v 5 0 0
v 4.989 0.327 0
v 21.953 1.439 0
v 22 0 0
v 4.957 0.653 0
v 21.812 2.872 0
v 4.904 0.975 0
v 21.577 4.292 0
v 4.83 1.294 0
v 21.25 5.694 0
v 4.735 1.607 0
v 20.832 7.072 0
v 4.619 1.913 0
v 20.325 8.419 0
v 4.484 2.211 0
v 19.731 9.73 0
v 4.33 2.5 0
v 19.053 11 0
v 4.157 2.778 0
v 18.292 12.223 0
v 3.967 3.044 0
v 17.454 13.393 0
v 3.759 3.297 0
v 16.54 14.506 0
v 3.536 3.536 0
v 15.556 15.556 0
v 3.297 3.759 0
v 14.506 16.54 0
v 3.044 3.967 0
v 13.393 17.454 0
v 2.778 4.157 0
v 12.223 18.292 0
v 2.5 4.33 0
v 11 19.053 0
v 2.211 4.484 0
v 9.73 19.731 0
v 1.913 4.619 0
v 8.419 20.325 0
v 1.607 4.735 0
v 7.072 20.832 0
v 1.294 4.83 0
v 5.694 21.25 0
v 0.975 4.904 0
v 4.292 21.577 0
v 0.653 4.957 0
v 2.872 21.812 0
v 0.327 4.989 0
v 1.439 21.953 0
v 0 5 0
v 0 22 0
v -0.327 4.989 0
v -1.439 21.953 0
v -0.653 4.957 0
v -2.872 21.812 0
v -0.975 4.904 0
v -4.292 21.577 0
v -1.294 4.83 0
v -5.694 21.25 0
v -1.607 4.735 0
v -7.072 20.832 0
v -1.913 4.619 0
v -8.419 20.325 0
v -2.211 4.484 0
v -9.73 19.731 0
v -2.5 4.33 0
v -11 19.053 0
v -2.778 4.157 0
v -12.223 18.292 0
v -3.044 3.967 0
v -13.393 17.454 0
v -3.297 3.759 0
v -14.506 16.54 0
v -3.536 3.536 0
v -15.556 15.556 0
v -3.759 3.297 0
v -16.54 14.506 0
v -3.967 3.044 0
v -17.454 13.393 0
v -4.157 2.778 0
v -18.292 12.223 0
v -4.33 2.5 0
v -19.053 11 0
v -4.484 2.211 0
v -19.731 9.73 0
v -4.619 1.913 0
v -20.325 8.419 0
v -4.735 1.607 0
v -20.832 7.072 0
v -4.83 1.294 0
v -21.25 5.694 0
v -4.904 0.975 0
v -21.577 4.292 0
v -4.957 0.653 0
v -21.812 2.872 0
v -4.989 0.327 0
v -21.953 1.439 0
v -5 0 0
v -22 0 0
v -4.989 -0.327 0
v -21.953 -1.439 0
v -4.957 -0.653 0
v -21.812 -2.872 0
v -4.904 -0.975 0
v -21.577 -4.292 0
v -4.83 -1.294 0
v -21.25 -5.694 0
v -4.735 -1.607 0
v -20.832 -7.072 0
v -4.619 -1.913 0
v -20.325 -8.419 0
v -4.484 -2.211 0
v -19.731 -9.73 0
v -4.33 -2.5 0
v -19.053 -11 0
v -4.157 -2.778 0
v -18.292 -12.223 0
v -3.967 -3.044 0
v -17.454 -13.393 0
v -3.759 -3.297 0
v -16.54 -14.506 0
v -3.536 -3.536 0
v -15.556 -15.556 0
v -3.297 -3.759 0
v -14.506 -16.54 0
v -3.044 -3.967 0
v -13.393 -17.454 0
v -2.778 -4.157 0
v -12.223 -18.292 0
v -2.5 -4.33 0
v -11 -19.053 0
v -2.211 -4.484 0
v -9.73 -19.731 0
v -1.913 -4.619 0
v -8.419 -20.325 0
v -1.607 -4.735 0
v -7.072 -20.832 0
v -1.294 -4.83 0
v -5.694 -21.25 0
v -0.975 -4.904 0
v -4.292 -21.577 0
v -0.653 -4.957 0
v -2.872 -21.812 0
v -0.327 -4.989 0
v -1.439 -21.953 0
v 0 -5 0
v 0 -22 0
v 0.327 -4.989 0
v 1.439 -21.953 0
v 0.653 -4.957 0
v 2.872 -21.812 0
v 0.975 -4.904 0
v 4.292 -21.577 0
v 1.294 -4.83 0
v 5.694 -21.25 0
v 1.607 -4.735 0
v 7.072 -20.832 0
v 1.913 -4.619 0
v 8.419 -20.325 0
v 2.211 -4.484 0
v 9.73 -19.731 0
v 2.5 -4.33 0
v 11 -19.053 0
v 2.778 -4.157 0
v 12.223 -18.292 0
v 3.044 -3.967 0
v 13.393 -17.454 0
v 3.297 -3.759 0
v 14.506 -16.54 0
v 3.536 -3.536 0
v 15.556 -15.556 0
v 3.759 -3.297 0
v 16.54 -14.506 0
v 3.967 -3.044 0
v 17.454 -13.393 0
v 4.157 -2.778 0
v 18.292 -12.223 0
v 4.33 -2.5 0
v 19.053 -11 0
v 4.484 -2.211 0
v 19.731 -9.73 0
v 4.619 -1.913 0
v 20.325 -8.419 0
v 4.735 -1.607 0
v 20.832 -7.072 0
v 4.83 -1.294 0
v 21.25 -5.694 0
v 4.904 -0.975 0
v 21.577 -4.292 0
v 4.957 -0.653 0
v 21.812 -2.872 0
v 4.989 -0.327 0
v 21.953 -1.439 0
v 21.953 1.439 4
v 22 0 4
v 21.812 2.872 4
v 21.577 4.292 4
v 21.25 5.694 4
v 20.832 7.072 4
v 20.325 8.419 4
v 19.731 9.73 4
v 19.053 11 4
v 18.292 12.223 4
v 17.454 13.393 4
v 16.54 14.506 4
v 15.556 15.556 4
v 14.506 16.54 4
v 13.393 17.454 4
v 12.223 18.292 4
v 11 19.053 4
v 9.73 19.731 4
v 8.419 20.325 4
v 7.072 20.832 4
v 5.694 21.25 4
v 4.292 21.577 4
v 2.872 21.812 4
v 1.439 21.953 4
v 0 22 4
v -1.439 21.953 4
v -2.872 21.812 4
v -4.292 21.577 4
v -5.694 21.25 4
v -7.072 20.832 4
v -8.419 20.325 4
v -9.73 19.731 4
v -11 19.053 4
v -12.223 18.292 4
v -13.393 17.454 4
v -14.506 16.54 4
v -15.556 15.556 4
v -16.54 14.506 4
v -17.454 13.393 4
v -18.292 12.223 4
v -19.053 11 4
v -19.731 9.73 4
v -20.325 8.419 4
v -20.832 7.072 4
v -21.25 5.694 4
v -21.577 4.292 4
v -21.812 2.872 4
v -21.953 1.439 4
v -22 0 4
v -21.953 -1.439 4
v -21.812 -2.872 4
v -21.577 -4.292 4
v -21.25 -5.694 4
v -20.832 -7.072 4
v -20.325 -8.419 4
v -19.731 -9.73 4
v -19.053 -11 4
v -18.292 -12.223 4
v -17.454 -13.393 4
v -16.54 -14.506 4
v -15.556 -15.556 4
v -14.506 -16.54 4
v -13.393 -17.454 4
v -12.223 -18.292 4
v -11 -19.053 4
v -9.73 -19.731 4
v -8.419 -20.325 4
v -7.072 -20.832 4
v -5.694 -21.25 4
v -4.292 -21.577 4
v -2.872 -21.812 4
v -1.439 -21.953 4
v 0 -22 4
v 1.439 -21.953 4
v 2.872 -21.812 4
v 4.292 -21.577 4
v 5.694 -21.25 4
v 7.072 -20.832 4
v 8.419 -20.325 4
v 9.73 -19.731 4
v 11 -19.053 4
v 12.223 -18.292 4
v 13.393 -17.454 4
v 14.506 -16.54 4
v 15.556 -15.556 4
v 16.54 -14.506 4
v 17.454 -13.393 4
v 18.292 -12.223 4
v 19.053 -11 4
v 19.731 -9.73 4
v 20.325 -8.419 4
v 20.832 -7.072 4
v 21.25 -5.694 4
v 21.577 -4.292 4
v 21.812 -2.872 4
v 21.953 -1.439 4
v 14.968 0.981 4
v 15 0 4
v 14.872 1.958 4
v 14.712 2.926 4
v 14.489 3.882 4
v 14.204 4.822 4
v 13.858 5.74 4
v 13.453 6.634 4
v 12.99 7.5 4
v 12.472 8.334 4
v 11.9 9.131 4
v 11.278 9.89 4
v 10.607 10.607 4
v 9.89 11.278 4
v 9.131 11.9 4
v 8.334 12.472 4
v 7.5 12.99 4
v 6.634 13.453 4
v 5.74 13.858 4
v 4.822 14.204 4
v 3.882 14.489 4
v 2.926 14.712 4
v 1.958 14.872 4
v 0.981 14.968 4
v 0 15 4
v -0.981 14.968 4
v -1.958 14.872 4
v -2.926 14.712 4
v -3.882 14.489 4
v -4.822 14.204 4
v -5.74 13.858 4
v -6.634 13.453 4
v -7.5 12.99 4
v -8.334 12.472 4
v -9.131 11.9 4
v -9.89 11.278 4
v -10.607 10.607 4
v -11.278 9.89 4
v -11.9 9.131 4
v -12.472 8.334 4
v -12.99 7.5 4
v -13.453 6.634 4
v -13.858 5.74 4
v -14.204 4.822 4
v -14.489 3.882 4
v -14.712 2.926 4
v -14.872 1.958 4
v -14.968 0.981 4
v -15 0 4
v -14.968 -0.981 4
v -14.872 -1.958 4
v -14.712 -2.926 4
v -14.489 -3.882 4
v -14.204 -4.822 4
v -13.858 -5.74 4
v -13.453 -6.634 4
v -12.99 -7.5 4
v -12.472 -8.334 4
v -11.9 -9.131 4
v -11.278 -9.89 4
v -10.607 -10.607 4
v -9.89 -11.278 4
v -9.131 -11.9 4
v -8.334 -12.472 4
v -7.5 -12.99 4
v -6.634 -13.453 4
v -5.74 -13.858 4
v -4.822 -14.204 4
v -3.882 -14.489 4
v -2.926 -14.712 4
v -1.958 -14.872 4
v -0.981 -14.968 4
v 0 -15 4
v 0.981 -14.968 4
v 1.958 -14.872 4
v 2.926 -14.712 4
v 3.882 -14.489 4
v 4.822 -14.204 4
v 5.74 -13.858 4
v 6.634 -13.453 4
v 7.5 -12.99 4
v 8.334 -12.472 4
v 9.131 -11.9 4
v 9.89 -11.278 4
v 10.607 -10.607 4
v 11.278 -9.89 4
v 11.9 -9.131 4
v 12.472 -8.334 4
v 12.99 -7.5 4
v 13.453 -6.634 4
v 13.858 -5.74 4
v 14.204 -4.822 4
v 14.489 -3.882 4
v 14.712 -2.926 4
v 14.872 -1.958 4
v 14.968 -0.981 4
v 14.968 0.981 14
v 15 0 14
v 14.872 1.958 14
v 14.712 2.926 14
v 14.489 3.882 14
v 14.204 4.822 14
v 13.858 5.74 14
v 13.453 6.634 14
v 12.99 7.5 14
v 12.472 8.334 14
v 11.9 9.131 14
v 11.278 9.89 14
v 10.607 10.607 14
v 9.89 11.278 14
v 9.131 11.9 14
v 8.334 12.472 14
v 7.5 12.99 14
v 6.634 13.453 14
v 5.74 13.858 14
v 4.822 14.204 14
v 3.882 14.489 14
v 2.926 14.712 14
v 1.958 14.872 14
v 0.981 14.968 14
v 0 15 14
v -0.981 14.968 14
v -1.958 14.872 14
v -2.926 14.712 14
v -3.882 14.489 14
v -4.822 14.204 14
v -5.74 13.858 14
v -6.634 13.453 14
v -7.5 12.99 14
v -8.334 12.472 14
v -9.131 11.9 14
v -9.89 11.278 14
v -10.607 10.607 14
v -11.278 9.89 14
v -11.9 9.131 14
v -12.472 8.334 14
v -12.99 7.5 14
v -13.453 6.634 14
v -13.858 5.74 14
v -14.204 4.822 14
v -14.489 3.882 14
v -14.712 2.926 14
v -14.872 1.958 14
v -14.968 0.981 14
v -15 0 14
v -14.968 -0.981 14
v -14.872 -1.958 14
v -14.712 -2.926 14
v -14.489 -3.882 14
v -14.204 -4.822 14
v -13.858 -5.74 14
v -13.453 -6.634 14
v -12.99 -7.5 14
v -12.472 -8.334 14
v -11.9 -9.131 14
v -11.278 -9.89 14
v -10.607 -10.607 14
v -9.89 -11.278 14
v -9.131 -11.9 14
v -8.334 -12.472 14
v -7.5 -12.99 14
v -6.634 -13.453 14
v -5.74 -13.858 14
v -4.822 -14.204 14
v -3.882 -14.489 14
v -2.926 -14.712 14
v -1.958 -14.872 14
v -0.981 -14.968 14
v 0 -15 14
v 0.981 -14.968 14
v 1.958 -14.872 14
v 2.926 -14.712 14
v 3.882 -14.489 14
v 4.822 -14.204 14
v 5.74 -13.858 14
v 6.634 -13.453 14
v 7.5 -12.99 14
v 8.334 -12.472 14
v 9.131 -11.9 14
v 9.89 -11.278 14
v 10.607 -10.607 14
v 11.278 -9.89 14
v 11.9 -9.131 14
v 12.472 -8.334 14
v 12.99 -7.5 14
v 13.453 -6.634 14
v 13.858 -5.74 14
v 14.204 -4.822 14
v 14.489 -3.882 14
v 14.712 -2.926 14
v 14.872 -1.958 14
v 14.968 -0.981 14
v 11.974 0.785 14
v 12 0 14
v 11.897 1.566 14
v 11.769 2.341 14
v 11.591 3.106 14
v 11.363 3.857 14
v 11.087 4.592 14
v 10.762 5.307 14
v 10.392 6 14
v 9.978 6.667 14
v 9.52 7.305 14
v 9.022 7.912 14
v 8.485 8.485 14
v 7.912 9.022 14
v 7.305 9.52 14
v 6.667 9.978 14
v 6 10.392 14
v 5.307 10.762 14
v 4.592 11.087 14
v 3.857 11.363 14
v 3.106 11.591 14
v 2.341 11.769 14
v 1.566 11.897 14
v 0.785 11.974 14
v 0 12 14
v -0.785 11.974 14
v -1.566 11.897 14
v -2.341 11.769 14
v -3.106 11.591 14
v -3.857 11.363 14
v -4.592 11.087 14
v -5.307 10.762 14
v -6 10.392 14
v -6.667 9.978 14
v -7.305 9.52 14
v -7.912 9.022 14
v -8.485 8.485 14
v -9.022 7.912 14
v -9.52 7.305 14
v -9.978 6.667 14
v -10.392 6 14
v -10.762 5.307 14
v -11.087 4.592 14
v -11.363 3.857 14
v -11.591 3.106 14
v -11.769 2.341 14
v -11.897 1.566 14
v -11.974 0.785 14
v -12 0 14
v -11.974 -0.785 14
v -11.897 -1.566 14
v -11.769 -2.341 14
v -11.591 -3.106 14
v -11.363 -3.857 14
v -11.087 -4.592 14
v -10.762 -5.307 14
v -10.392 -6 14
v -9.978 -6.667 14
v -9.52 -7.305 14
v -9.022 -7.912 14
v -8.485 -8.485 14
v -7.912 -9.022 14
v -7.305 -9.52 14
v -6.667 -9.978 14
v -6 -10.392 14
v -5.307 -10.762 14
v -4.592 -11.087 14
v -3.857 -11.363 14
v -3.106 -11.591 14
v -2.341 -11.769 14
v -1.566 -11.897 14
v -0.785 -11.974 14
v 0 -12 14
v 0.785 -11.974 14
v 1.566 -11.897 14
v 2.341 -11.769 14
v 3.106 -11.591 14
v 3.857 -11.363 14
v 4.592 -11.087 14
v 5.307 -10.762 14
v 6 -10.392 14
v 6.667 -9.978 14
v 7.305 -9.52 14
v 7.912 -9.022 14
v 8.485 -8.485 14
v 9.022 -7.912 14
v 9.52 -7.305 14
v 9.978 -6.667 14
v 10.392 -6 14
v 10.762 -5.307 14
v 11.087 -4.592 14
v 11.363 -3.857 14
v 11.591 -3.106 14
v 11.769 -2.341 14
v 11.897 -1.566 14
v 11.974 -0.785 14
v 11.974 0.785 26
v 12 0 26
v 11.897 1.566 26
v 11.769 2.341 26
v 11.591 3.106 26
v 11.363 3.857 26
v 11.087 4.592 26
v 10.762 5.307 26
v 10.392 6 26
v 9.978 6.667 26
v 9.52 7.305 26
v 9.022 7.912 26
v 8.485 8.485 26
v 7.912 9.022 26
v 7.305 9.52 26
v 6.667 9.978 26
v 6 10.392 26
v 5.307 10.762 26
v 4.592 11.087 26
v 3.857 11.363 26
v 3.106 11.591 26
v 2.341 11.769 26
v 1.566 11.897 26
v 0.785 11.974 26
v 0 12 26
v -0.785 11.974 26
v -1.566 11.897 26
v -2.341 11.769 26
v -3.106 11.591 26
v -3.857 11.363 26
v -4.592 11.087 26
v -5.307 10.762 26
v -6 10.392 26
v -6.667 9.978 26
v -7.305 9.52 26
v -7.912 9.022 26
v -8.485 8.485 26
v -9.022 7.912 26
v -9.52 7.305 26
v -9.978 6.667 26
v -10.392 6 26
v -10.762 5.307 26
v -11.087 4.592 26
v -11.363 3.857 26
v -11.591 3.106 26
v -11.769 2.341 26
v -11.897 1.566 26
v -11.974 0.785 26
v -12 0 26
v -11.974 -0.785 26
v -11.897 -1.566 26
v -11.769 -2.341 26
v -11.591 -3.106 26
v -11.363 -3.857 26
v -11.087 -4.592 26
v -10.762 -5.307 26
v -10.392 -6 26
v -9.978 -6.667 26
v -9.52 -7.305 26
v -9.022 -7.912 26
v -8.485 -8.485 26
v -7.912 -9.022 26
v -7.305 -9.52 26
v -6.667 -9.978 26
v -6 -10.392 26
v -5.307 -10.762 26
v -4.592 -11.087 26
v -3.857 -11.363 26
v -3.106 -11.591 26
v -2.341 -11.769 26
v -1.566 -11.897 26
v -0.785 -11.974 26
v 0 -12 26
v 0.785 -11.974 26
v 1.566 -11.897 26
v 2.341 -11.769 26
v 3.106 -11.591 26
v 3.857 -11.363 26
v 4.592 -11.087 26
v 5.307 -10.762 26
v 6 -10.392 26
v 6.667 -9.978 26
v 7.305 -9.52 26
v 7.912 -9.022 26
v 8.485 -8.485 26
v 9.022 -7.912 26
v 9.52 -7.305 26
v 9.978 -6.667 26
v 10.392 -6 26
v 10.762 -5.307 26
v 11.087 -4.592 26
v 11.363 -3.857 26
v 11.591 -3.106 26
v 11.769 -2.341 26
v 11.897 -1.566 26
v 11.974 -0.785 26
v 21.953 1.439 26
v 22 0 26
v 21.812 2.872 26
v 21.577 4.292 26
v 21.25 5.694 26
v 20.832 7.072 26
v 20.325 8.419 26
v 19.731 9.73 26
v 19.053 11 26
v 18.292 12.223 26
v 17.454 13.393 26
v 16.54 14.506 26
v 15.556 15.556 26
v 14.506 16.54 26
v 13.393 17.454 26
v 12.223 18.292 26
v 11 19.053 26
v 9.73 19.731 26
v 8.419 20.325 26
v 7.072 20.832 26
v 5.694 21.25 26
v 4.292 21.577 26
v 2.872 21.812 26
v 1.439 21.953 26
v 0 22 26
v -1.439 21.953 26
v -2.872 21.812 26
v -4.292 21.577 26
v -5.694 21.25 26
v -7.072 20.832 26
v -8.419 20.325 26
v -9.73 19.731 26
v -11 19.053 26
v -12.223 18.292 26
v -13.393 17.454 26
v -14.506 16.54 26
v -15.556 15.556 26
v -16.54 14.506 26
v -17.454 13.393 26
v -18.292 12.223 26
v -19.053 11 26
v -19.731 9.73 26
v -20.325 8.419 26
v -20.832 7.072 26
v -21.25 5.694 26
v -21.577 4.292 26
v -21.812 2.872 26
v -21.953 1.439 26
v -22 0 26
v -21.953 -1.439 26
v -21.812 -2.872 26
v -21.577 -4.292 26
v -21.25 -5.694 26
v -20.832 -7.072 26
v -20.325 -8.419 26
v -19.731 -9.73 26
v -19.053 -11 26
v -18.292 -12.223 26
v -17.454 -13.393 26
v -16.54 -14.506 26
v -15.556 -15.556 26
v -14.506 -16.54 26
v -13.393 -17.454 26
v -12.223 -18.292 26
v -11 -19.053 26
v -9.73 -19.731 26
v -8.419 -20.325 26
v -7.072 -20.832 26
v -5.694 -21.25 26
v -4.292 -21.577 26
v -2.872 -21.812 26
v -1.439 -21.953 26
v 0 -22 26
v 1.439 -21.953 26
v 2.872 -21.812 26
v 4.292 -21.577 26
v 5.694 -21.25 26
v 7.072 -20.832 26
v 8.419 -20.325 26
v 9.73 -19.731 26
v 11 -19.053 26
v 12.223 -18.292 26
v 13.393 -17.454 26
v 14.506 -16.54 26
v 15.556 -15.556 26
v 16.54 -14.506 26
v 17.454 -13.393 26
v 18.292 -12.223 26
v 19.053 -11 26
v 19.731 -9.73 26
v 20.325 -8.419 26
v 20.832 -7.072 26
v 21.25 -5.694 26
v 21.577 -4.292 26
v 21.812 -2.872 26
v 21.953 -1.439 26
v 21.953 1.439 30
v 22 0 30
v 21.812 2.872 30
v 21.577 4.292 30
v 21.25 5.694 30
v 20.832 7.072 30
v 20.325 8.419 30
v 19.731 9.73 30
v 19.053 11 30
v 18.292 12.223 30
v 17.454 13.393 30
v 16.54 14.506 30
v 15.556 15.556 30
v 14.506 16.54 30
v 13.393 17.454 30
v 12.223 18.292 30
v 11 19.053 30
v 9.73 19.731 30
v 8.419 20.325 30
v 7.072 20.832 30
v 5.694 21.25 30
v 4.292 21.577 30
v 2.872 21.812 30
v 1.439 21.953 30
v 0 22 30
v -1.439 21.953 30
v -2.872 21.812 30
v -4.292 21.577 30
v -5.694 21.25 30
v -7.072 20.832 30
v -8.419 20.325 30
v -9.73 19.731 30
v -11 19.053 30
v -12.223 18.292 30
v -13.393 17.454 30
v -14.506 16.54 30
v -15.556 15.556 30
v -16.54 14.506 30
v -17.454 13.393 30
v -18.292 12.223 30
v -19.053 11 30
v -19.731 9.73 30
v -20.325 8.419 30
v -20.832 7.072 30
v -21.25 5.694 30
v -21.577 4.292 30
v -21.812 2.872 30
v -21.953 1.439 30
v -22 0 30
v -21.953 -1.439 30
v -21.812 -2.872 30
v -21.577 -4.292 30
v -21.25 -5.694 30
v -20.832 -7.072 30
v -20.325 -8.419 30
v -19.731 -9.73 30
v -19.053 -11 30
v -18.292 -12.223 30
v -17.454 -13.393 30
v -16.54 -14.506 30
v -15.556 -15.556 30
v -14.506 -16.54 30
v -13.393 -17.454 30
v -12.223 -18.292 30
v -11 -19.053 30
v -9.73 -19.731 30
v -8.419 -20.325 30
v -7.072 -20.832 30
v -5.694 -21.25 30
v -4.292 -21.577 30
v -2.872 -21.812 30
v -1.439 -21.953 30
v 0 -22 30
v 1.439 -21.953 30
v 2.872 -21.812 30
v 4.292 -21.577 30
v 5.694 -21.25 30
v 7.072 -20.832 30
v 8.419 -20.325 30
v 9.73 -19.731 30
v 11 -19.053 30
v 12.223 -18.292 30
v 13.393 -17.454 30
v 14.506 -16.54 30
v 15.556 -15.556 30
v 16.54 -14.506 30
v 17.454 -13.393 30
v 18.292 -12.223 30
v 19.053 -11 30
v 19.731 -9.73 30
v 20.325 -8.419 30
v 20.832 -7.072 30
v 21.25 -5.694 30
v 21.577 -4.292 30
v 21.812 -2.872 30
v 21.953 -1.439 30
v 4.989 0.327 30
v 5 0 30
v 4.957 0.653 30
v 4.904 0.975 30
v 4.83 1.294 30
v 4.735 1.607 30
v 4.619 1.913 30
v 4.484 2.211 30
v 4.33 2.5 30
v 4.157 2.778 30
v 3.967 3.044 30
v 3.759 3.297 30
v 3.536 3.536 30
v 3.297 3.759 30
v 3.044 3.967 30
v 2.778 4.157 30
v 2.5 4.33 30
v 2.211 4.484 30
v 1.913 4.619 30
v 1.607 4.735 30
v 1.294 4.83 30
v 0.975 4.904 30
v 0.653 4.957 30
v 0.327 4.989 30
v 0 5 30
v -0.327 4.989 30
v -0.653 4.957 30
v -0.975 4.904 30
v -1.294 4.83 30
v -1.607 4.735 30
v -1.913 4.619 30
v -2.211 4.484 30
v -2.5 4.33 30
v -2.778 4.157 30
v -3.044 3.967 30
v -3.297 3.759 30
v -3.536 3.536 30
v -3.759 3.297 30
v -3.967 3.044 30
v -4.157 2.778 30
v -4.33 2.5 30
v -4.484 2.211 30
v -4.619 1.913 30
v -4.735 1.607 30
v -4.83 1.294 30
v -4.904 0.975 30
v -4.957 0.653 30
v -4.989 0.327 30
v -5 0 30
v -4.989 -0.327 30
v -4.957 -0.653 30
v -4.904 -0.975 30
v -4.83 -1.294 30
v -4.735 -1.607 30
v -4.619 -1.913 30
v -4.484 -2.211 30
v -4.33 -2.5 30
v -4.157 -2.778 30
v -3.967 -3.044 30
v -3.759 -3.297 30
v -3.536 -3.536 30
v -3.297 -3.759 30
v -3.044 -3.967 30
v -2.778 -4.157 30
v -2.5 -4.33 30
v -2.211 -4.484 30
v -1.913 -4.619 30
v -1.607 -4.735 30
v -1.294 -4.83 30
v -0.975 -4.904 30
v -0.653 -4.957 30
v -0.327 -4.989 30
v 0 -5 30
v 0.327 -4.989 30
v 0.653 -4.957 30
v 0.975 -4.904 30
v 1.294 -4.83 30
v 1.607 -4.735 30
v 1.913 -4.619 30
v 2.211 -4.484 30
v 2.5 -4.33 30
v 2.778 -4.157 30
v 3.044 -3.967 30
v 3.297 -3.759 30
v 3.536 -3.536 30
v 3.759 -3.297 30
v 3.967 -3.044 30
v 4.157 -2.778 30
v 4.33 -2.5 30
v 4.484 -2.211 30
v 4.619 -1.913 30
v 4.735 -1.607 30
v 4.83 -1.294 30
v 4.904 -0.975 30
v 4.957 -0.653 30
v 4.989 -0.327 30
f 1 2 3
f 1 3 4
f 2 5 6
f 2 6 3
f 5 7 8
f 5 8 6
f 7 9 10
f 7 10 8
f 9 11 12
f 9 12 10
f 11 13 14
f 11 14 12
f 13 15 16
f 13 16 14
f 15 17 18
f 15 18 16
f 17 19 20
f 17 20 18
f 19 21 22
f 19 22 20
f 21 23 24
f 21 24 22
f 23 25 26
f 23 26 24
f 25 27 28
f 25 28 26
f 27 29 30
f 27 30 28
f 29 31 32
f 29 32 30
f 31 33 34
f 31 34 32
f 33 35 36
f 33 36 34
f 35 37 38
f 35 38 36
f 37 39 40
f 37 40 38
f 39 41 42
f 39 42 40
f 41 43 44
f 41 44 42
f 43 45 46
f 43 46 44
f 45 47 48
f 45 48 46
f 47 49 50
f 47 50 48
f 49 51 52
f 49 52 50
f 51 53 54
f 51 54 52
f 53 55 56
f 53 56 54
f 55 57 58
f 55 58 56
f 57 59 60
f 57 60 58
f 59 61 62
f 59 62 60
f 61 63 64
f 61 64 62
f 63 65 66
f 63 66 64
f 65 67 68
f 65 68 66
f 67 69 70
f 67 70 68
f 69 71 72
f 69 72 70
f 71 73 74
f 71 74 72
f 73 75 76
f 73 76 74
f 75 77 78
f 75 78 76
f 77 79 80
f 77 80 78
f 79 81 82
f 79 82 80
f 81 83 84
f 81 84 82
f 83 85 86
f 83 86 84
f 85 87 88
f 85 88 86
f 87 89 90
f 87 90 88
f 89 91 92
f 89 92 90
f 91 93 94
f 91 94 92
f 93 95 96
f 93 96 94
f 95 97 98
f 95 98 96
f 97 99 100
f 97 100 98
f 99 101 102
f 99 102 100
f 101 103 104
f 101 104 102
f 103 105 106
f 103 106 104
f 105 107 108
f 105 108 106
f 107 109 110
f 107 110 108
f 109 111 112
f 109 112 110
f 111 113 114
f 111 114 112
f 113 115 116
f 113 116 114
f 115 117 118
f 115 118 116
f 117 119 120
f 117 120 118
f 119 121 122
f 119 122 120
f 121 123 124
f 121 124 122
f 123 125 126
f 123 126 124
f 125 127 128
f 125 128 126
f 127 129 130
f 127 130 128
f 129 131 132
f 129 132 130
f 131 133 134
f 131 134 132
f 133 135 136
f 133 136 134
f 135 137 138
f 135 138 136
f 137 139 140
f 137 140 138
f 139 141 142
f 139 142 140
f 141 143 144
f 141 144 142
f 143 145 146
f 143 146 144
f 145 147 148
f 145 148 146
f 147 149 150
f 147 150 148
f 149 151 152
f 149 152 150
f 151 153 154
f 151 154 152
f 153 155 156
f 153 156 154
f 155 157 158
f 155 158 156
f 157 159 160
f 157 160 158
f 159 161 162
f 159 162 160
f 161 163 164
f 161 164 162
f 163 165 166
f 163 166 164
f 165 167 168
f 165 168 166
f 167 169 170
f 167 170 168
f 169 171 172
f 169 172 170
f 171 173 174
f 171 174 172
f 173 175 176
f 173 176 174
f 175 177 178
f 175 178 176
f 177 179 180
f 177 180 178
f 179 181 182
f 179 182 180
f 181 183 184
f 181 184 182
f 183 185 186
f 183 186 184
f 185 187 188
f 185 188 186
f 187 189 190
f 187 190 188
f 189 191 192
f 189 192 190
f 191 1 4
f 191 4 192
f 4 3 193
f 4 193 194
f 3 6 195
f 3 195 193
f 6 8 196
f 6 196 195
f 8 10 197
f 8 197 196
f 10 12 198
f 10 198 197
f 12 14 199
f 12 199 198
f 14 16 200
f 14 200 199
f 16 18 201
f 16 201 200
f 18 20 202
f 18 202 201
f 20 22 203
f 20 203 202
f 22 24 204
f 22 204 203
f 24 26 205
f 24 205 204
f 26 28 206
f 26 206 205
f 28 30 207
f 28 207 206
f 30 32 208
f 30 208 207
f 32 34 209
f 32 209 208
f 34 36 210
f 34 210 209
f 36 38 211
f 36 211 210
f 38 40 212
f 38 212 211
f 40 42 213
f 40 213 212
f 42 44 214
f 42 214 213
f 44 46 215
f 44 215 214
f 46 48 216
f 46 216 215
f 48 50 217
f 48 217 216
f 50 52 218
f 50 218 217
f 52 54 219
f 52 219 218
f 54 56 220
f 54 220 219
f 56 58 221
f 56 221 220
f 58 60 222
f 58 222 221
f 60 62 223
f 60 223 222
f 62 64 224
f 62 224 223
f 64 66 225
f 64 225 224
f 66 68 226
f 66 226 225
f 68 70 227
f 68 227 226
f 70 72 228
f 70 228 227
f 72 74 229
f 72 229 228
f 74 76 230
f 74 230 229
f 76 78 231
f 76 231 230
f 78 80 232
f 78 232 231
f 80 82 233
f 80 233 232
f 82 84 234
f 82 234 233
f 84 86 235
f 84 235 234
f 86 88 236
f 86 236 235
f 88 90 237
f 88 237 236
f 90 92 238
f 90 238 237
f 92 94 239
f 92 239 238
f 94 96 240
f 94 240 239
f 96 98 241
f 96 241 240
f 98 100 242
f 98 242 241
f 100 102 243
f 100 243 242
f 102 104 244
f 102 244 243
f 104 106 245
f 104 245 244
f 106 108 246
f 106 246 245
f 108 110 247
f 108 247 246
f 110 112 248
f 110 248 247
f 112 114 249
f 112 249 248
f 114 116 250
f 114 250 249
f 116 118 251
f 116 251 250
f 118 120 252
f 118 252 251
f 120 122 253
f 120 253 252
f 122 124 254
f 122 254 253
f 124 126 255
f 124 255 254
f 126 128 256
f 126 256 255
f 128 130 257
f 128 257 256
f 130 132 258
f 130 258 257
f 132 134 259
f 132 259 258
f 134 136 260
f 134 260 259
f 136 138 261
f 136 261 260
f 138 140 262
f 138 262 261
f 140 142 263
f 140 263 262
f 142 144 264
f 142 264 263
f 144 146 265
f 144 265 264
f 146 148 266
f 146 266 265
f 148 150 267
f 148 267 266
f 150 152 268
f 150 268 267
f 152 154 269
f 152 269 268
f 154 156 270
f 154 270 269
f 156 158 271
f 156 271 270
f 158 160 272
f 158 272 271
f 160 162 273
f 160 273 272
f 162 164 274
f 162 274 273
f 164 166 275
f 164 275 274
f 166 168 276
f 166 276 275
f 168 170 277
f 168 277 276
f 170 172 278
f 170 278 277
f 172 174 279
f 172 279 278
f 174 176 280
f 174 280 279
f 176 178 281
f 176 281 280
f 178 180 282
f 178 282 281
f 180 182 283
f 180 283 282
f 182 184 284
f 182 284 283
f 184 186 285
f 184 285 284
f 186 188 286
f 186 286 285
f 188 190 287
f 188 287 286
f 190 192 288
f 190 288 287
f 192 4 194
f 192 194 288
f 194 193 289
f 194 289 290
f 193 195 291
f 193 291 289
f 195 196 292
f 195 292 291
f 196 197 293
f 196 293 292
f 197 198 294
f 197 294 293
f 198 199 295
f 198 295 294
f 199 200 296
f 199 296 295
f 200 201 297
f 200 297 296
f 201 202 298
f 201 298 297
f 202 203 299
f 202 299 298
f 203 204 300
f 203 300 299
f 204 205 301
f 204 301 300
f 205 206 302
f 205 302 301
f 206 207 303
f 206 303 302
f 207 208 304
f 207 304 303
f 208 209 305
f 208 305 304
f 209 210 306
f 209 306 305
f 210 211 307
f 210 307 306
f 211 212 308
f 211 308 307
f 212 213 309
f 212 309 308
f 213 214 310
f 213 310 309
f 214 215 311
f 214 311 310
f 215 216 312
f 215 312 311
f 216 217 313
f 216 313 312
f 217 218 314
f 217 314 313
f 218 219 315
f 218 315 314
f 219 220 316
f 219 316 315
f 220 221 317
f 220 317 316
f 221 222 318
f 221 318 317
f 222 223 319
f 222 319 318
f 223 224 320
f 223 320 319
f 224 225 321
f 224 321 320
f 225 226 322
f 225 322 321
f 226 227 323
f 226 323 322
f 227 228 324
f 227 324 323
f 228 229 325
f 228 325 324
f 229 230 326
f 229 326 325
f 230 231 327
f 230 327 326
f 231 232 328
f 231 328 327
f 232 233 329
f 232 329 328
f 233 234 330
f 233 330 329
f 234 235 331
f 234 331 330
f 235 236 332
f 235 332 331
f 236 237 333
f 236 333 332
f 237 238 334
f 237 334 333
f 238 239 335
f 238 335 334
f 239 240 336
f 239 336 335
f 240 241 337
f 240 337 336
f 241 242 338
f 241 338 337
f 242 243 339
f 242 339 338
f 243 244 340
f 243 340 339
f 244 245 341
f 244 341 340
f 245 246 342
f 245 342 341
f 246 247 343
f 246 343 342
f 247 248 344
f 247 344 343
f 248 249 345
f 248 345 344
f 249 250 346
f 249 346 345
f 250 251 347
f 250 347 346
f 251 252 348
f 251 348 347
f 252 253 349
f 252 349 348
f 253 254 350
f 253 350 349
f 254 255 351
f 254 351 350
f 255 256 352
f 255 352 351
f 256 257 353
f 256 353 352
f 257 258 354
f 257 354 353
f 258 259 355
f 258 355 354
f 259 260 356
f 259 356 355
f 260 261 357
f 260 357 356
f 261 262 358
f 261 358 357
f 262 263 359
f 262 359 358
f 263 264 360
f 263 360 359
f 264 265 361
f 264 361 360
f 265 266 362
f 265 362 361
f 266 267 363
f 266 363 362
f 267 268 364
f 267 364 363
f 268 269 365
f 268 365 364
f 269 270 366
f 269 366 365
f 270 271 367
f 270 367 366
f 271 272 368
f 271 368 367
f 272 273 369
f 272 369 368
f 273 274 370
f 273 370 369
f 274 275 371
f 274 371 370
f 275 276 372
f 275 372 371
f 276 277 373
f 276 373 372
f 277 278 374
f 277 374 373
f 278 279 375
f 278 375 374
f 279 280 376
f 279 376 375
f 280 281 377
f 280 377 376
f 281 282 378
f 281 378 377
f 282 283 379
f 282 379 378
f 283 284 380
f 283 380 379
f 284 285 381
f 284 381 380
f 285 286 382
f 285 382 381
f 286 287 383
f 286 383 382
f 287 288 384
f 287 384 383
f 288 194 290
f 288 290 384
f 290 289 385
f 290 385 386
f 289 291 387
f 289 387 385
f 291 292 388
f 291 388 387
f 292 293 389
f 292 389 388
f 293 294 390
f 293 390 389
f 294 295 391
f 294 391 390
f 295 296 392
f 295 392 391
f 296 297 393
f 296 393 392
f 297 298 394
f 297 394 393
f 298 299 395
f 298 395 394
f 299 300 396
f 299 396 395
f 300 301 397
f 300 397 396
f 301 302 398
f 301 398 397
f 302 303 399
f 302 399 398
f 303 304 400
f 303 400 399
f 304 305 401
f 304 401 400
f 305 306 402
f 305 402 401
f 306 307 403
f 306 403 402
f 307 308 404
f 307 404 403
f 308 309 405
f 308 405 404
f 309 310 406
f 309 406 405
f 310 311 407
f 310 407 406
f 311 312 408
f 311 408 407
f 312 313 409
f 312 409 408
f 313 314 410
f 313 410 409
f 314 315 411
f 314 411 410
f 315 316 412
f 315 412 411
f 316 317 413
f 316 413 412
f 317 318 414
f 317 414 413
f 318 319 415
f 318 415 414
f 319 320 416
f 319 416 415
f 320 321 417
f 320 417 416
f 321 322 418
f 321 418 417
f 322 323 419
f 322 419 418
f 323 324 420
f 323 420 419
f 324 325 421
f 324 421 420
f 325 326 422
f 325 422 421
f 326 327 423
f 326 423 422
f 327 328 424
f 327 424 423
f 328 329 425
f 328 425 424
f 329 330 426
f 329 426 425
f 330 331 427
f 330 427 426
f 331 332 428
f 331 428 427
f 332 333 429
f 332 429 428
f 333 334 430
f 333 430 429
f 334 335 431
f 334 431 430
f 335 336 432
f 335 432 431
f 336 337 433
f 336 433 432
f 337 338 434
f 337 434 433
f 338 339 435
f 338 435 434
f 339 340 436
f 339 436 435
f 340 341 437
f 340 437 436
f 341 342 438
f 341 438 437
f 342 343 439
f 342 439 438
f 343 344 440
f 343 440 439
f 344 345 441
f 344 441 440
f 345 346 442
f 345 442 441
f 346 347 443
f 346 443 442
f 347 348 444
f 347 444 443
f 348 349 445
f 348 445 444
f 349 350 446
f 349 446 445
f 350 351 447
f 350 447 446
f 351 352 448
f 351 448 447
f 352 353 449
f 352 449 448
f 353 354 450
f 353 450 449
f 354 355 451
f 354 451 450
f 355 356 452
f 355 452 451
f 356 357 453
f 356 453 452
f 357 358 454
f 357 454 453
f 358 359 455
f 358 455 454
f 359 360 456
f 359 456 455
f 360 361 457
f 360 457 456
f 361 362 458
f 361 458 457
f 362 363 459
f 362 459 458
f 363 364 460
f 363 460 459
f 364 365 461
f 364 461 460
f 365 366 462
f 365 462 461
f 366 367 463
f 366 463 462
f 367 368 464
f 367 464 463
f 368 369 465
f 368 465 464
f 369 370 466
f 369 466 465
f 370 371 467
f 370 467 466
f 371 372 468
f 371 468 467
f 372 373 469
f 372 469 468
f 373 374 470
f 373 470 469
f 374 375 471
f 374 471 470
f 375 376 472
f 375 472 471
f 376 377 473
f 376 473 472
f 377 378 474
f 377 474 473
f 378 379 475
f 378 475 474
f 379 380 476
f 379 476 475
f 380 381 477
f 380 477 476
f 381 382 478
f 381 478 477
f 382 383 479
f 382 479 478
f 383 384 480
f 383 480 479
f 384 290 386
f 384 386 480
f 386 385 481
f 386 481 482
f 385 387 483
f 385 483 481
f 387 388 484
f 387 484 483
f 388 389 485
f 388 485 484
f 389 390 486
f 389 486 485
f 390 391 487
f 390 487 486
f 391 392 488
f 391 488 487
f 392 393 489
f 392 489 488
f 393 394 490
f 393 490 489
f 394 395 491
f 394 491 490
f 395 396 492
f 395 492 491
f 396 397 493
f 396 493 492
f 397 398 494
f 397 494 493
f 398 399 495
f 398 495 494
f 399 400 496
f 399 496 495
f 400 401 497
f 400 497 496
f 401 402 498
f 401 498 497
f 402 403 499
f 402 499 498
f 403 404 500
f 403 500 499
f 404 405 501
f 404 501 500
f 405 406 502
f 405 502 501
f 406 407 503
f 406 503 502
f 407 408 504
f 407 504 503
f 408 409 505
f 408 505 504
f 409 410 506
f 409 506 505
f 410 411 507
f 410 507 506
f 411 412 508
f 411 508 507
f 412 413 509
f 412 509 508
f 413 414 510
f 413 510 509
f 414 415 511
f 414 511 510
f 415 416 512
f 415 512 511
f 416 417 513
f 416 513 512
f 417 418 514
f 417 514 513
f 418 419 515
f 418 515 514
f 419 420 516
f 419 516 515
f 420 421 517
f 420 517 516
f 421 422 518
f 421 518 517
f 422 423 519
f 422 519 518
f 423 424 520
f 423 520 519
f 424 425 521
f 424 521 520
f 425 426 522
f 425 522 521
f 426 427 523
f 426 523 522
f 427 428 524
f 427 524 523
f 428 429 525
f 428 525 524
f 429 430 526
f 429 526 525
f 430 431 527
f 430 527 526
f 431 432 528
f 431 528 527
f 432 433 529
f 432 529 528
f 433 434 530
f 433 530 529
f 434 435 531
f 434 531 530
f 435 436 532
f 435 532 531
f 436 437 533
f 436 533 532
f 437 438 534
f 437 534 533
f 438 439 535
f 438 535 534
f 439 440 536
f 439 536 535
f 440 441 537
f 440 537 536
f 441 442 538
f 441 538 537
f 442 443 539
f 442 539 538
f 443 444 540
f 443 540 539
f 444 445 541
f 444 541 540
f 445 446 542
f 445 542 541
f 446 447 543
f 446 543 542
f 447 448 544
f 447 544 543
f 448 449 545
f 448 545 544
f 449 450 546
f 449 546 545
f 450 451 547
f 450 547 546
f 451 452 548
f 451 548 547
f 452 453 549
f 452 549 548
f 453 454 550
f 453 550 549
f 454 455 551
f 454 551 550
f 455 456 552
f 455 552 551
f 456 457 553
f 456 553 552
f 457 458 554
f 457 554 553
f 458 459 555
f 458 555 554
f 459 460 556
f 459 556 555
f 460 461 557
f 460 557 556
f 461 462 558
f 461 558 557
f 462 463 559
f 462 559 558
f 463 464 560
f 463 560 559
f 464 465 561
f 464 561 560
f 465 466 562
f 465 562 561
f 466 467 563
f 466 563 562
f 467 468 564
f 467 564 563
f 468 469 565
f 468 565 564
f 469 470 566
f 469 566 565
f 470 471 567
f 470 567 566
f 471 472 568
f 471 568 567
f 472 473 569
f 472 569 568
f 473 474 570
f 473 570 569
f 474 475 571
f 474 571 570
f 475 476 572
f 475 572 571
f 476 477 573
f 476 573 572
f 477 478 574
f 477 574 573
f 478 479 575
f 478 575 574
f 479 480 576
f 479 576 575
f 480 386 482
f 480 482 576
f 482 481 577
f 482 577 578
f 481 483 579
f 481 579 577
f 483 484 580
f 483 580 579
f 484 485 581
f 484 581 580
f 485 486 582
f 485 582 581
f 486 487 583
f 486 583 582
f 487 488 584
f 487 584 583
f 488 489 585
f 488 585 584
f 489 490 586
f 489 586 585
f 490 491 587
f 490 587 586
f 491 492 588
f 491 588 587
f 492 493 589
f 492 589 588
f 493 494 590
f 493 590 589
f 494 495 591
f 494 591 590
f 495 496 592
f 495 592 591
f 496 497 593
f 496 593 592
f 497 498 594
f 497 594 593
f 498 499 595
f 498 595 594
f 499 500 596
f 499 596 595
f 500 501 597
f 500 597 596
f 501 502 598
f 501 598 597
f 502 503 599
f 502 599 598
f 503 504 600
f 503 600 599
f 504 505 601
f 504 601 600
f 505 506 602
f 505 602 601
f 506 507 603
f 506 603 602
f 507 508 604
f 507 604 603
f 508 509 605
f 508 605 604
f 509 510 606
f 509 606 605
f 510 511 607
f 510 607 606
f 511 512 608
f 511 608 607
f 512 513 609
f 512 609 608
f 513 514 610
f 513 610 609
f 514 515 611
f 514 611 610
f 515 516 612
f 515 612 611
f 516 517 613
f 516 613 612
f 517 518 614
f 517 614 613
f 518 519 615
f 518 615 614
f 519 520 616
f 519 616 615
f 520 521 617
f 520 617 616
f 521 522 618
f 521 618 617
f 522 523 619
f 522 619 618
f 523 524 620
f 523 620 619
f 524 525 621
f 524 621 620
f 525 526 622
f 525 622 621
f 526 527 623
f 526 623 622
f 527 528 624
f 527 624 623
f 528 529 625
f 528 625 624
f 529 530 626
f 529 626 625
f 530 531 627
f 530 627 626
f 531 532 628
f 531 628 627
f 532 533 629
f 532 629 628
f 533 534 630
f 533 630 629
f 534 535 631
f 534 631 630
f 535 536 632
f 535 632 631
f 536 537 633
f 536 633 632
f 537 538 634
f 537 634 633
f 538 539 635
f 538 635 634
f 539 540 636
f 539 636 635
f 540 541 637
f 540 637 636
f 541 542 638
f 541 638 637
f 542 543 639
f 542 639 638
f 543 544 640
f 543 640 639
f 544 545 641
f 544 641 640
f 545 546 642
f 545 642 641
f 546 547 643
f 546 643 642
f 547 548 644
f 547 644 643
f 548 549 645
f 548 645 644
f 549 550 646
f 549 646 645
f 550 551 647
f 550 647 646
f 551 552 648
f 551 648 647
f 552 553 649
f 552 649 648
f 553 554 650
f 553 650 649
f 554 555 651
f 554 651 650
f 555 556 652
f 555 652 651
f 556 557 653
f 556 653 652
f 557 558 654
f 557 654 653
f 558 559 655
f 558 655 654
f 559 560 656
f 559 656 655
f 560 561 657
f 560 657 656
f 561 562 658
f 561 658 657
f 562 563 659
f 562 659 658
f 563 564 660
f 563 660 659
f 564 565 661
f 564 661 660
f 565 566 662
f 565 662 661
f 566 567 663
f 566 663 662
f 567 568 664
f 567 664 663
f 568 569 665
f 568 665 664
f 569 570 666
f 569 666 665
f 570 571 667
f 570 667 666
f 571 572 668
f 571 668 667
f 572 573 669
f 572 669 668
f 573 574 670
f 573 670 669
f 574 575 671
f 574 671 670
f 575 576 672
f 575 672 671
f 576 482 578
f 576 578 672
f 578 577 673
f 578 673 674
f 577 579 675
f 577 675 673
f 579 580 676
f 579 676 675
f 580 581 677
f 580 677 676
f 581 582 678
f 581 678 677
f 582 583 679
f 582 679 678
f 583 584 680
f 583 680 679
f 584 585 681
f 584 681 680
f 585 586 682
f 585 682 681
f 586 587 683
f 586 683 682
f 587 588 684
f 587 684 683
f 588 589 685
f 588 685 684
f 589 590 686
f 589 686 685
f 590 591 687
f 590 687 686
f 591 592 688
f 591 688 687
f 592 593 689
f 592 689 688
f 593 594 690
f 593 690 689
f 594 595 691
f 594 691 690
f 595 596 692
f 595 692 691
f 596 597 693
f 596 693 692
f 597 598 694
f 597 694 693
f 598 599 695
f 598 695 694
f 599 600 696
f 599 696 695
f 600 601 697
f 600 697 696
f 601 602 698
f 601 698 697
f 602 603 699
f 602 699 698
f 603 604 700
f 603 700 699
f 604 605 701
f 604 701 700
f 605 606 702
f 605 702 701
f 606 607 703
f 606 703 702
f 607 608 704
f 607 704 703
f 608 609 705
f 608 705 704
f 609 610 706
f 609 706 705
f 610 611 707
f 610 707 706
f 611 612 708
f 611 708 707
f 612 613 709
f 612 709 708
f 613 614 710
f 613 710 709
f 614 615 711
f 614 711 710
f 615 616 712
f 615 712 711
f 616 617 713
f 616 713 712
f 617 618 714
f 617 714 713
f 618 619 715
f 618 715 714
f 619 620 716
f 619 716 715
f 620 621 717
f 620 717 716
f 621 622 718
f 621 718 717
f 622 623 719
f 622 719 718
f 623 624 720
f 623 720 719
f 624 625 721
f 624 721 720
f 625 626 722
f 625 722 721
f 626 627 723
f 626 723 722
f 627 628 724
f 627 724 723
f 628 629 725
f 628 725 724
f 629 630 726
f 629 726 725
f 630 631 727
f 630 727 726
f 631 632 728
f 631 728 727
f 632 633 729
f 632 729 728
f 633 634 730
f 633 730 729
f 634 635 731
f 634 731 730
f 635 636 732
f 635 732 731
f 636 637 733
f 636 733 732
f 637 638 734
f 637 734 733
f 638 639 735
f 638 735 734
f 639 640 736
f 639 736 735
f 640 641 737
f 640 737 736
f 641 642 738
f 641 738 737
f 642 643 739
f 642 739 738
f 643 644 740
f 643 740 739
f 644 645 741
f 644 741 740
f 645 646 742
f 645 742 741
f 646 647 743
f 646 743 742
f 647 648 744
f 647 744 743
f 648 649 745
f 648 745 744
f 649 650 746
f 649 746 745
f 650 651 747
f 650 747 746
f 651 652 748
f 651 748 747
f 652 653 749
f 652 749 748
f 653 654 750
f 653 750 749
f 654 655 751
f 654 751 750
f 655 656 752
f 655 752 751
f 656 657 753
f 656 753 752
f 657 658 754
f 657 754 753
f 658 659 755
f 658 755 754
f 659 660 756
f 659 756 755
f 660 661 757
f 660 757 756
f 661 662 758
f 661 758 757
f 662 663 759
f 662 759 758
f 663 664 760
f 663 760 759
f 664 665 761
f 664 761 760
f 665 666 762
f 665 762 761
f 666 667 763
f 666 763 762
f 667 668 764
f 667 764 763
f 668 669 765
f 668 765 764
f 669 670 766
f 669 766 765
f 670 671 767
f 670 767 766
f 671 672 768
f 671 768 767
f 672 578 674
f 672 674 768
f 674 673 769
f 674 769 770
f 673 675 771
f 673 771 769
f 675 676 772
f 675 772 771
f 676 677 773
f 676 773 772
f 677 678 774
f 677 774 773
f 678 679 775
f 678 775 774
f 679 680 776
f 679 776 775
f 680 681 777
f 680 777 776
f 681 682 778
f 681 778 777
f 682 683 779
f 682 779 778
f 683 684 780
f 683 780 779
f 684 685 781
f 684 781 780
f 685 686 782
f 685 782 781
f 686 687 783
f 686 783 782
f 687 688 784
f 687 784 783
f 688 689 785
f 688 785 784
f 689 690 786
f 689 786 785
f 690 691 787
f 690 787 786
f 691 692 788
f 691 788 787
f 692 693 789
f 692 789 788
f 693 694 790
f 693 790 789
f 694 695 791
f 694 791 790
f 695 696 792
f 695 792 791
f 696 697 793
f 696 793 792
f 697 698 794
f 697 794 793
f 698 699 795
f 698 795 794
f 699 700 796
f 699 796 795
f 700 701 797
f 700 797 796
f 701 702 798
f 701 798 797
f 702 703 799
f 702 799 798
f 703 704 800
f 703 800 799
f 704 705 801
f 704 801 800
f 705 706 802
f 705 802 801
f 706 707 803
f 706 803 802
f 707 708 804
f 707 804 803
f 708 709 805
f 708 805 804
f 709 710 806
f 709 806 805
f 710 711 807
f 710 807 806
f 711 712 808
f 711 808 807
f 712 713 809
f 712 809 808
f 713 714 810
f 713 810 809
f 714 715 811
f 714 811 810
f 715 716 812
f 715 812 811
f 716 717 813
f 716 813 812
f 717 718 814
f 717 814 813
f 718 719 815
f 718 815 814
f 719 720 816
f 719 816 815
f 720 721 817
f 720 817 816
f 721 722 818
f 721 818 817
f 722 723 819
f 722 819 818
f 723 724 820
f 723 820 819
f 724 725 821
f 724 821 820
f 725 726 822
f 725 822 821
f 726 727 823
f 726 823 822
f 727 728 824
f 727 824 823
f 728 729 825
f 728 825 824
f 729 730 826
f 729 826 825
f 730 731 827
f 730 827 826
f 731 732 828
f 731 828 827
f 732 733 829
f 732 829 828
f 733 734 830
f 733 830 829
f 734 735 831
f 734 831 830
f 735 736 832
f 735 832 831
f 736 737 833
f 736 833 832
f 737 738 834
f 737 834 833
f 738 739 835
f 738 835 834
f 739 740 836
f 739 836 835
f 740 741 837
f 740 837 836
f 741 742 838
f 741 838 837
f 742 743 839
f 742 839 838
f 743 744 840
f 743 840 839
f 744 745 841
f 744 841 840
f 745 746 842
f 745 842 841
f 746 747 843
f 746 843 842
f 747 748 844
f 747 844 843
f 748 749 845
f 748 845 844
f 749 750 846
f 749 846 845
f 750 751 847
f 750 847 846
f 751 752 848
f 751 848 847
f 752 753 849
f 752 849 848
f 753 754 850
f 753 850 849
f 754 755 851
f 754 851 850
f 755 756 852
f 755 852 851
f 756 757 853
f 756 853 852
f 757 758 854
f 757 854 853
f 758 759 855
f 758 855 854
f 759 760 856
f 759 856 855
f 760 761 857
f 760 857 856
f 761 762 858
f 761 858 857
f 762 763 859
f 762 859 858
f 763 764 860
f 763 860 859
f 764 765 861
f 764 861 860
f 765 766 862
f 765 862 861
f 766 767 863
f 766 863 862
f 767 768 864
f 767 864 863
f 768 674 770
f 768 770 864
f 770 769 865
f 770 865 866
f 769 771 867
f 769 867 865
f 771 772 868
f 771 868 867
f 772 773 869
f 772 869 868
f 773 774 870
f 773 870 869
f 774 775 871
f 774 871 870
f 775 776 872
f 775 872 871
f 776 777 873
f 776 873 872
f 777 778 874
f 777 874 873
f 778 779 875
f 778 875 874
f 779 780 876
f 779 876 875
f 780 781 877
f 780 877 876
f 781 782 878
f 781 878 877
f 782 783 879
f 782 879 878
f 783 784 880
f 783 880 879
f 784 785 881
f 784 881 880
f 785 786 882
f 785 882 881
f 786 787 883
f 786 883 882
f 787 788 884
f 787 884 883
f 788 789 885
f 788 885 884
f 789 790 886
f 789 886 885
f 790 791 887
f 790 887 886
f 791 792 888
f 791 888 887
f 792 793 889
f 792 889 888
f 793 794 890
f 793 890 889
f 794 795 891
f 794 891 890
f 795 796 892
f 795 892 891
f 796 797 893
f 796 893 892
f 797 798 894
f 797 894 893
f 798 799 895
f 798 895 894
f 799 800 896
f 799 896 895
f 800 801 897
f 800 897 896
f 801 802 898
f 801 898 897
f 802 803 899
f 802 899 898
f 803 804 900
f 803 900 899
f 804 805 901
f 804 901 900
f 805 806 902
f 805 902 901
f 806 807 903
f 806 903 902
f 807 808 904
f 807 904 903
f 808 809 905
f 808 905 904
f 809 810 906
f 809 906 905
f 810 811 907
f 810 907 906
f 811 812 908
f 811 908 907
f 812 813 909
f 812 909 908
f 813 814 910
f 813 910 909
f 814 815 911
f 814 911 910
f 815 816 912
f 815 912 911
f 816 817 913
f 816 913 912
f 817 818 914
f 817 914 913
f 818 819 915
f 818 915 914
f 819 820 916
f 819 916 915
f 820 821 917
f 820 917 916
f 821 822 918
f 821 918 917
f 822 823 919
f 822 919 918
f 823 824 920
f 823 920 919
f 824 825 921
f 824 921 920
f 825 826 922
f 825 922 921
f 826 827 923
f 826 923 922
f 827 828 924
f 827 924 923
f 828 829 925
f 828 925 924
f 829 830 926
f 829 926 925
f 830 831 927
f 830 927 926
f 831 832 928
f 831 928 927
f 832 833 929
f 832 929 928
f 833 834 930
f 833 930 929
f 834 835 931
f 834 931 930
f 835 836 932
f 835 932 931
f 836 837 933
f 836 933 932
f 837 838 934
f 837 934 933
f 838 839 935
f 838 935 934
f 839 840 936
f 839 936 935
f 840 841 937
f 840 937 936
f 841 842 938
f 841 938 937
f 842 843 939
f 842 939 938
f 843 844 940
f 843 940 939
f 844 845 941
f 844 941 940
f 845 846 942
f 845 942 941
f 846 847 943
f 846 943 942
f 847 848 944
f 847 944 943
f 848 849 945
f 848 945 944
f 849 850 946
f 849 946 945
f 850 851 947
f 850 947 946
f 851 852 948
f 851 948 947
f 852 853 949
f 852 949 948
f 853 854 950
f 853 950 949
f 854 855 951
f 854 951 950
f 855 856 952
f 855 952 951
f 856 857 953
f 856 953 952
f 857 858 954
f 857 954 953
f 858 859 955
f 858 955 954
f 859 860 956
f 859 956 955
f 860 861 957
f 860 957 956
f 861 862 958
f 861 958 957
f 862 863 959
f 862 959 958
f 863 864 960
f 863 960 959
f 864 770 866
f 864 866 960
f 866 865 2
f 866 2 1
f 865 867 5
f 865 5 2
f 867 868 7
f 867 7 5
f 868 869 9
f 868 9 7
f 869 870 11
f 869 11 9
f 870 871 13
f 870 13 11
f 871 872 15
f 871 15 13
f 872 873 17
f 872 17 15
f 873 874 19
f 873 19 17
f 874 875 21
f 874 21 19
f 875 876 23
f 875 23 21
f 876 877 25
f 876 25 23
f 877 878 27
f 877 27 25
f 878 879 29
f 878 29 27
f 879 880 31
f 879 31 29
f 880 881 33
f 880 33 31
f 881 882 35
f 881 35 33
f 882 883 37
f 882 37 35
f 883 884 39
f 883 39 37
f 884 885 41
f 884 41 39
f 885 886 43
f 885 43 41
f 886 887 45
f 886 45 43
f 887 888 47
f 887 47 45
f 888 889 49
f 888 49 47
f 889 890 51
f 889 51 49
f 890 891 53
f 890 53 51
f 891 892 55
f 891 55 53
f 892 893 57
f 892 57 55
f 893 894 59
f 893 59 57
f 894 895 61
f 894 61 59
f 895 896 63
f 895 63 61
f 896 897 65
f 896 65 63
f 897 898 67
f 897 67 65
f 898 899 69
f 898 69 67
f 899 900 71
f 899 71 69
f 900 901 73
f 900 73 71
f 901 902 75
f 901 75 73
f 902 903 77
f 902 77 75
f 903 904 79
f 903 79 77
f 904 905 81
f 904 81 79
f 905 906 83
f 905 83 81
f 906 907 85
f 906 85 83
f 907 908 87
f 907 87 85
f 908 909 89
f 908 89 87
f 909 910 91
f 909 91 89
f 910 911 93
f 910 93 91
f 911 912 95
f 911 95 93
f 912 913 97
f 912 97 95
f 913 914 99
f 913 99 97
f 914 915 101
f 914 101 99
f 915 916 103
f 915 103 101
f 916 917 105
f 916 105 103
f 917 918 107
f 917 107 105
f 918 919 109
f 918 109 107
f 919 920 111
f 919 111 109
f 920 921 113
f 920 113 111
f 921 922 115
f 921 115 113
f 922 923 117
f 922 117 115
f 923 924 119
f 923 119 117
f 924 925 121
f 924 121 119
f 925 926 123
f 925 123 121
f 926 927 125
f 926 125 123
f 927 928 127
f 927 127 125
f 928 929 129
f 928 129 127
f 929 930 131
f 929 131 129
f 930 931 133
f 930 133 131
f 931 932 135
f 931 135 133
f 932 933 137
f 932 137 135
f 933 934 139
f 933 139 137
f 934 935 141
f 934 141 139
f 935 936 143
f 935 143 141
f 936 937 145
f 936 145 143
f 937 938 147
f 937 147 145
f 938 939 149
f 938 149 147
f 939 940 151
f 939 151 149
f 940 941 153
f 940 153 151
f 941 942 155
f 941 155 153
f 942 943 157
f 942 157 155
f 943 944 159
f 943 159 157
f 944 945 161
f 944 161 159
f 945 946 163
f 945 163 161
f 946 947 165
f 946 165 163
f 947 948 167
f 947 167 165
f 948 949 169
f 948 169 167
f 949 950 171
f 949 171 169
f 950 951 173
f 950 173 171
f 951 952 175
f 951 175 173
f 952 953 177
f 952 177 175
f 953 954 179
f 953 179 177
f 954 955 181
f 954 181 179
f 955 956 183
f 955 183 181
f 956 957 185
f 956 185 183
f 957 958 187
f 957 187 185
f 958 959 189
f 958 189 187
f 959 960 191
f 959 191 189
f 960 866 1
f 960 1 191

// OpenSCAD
// Original MechIntel educational model. CC0-1.0. Units: mm.
// Not a standardized or load-rated component.
$fn=96;
// Section points: [radius, height], mm. Edit to change the profile.
section=[[5, 0], [22, 0], [22, 4], [15, 4], [15, 14], [12, 14], [12, 26], [22, 26], [22, 30], [5, 30]];
rotate_extrude($fn=96) polygon(points=section);
